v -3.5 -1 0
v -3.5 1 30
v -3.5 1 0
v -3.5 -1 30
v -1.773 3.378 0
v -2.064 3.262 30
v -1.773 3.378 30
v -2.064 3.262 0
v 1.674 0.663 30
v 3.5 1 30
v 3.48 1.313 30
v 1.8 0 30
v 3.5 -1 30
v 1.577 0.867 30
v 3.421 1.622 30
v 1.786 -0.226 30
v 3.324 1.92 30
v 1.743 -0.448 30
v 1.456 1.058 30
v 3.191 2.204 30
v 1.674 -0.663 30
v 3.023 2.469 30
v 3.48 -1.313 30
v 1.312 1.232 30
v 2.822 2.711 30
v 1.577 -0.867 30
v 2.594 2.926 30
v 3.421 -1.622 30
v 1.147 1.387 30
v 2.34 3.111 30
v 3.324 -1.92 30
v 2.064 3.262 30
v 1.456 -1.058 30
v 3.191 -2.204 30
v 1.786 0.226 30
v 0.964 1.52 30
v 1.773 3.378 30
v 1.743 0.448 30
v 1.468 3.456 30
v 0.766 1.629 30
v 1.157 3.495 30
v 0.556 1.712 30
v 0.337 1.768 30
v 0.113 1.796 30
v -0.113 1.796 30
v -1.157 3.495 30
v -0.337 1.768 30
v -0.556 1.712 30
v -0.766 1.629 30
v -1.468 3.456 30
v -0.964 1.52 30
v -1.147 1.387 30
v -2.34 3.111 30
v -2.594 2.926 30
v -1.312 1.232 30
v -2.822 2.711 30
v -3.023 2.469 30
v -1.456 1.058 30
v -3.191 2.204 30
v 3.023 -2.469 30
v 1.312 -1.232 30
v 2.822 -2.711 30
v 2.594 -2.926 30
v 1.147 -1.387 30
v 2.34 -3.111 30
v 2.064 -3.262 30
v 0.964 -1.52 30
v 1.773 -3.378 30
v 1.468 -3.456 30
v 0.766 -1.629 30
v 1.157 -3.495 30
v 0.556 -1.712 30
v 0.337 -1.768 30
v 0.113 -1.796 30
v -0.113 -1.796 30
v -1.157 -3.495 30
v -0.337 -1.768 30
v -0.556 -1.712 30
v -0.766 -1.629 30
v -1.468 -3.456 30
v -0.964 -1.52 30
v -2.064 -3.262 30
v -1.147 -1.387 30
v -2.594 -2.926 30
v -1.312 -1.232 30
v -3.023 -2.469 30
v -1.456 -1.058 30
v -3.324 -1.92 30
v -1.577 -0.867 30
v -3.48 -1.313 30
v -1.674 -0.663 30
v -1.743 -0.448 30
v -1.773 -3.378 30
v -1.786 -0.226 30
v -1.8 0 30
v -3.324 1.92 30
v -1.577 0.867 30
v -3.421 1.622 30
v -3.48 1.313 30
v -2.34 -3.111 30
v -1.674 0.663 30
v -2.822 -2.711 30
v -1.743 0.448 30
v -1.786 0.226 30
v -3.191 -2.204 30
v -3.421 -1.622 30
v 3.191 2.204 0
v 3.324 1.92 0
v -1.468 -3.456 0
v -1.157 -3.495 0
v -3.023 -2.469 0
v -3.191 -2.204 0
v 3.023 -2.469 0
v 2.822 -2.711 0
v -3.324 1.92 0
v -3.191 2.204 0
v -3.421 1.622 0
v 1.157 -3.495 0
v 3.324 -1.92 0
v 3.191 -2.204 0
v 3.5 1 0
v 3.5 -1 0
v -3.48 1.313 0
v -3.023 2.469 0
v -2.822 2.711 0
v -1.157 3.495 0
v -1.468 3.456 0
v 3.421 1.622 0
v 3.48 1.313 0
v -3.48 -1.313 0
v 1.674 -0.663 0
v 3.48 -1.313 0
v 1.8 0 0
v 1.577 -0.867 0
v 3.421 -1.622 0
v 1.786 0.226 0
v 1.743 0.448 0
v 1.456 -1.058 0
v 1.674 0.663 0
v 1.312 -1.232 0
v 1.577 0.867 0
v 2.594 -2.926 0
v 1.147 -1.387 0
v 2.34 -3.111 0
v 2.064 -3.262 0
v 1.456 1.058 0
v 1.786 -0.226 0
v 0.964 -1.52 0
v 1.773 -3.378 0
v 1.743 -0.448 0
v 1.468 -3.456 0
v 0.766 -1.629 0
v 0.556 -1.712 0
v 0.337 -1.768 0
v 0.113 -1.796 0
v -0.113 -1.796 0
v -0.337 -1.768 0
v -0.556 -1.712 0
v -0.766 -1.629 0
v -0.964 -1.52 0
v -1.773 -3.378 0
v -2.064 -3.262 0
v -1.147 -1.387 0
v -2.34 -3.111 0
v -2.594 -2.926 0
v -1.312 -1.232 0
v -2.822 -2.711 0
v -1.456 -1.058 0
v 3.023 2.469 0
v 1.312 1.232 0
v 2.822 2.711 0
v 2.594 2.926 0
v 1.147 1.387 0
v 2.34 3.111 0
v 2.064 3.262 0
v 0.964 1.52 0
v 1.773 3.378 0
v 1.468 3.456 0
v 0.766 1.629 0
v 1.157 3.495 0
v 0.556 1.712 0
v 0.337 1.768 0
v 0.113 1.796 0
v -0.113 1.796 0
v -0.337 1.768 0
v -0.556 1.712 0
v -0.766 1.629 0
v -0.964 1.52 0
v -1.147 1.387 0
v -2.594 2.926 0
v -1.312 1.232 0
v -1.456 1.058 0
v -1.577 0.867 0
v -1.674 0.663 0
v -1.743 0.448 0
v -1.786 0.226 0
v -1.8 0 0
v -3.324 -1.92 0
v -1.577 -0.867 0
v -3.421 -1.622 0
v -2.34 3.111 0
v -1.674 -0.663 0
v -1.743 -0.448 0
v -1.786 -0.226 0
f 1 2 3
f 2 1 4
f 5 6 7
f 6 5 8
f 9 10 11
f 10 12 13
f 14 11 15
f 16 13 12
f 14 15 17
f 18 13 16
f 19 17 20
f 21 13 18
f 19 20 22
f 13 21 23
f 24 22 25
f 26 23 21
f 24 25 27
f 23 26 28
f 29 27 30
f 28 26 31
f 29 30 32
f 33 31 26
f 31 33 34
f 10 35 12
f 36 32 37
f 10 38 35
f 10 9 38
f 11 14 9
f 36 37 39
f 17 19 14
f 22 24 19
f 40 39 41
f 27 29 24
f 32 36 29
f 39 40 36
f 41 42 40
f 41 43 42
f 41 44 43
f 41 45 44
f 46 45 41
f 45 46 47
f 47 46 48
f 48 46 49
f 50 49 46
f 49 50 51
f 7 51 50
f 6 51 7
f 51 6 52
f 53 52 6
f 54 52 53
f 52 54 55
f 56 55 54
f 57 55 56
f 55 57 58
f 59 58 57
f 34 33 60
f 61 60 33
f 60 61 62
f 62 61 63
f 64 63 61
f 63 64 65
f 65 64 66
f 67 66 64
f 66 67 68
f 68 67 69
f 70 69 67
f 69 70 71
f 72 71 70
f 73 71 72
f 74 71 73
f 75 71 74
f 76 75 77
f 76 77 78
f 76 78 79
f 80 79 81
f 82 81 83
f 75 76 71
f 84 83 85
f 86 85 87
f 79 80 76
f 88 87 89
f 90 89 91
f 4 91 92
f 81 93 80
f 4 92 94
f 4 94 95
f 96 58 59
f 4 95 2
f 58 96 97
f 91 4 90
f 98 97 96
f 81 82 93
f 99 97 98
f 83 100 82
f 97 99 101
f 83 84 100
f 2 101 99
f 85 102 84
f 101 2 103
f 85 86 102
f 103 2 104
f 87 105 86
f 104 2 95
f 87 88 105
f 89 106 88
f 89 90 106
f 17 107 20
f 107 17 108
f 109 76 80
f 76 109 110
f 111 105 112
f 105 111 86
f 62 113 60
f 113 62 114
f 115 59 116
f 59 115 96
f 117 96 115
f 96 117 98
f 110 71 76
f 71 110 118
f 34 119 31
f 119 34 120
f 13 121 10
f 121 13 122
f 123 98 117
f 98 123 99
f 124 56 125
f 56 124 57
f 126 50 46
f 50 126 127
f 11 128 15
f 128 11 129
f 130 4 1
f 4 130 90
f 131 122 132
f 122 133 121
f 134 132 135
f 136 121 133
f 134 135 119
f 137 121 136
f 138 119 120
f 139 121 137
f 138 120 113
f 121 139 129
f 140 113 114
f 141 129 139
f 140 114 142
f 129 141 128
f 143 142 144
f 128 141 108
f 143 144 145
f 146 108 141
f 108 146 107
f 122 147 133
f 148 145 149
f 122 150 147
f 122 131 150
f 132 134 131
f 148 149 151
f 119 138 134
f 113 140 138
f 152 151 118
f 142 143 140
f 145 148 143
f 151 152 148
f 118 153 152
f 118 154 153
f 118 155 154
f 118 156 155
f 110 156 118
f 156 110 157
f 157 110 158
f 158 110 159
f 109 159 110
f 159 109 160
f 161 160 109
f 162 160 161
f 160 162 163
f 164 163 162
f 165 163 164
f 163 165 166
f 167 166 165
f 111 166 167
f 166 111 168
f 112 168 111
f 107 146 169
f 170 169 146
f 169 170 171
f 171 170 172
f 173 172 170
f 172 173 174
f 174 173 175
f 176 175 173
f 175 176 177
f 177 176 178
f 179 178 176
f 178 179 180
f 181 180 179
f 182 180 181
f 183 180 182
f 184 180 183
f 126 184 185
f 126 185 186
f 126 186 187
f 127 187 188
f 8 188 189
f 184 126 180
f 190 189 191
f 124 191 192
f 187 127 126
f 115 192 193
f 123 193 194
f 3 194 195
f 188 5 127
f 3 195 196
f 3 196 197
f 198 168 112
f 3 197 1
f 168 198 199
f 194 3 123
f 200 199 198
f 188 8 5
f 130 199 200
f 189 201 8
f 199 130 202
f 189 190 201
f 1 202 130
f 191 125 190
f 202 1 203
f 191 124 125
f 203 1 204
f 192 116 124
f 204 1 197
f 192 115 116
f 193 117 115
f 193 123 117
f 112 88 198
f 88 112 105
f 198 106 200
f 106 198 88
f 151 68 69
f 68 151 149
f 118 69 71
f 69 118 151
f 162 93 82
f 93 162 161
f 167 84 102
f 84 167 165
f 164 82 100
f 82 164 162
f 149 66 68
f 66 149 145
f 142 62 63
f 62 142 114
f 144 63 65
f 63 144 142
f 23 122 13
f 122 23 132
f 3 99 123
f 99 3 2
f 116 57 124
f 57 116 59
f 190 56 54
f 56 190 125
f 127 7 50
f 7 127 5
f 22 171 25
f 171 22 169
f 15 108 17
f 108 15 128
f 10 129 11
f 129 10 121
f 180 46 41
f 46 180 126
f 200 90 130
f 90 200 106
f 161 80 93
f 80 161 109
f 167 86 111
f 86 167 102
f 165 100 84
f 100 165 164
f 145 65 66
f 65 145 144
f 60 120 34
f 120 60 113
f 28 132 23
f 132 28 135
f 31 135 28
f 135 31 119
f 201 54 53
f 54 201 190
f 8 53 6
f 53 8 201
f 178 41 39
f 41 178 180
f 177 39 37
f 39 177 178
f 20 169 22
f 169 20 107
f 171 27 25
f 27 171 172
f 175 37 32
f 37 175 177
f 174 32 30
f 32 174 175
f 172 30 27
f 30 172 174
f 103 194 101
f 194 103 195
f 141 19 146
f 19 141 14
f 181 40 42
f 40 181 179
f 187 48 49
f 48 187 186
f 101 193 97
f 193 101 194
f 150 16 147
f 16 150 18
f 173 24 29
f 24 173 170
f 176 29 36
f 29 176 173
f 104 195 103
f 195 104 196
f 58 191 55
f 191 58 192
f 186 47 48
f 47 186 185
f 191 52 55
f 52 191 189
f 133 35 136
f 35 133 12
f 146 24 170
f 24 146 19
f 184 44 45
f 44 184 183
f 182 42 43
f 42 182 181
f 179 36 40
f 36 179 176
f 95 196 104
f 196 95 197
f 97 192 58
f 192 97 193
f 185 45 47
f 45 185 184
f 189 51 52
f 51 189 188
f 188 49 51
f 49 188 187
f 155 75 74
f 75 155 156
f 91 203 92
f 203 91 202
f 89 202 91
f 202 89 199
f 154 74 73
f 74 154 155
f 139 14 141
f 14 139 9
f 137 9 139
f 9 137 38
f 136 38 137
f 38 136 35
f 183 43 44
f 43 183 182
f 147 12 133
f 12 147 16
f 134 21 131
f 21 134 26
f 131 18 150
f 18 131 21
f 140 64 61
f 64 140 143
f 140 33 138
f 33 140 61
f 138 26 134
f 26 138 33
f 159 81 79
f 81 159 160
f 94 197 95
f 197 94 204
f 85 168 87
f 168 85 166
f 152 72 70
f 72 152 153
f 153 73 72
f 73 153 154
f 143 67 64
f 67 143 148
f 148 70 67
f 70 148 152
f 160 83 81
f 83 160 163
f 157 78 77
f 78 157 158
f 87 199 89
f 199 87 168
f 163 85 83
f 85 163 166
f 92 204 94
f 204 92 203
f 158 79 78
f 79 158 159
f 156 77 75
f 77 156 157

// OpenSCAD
$fn = 50;


difference() {
	union() {
		translate(v = [0, 0, 0]) {
			rotate(a = [0, 0, 0]) {
				hull() {
					translate(v = [-1.0000000000, 1.0000000000, 0]) {
						rotate(a = [0, 0, 0]) {
							translate(v = [0, 0, 0]) {
								rotate(a = [0, 0, 0]) {
									cylinder(h = 30, r = 2.5000000000);
								}
							}
						}
					}
					translate(v = [1.0000000000, 1.0000000000, 0]) {
						rotate(a = [0, 0, 0]) {
							translate(v = [0, 0, 0]) {
								rotate(a = [0, 0, 0]) {
									cylinder(h = 30, r = 2.5000000000);
								}
							}
						}
					}
					translate(v = [-1.0000000000, -1.0000000000, 0]) {
						rotate(a = [0, 0, 0]) {
							translate(v = [0, 0, 0]) {
								rotate(a = [0, 0, 0]) {
									cylinder(h = 30, r = 2.5000000000);
								}
							}
						}
					}
					translate(v = [1.0000000000, -1.0000000000, 0]) {
						rotate(a = [0, 0, 0]) {
							translate(v = [0, 0, 0]) {
								rotate(a = [0, 0, 0]) {
									cylinder(h = 30, r = 2.5000000000);
								}
							}
						}
					}
				}
			}
		}
	}
	union() {
		translate(v = [0.0000000000, 0.0000000000, 0]) {
			rotate(a = [0, 0, 0]) {
				translate(v = [0, 0, -50]) {
					rotate(a = [0, 0, 0]) {
						cylinder(h = 100, r = 1.8000000000);
					}
				}
			}
		}
	}
}
